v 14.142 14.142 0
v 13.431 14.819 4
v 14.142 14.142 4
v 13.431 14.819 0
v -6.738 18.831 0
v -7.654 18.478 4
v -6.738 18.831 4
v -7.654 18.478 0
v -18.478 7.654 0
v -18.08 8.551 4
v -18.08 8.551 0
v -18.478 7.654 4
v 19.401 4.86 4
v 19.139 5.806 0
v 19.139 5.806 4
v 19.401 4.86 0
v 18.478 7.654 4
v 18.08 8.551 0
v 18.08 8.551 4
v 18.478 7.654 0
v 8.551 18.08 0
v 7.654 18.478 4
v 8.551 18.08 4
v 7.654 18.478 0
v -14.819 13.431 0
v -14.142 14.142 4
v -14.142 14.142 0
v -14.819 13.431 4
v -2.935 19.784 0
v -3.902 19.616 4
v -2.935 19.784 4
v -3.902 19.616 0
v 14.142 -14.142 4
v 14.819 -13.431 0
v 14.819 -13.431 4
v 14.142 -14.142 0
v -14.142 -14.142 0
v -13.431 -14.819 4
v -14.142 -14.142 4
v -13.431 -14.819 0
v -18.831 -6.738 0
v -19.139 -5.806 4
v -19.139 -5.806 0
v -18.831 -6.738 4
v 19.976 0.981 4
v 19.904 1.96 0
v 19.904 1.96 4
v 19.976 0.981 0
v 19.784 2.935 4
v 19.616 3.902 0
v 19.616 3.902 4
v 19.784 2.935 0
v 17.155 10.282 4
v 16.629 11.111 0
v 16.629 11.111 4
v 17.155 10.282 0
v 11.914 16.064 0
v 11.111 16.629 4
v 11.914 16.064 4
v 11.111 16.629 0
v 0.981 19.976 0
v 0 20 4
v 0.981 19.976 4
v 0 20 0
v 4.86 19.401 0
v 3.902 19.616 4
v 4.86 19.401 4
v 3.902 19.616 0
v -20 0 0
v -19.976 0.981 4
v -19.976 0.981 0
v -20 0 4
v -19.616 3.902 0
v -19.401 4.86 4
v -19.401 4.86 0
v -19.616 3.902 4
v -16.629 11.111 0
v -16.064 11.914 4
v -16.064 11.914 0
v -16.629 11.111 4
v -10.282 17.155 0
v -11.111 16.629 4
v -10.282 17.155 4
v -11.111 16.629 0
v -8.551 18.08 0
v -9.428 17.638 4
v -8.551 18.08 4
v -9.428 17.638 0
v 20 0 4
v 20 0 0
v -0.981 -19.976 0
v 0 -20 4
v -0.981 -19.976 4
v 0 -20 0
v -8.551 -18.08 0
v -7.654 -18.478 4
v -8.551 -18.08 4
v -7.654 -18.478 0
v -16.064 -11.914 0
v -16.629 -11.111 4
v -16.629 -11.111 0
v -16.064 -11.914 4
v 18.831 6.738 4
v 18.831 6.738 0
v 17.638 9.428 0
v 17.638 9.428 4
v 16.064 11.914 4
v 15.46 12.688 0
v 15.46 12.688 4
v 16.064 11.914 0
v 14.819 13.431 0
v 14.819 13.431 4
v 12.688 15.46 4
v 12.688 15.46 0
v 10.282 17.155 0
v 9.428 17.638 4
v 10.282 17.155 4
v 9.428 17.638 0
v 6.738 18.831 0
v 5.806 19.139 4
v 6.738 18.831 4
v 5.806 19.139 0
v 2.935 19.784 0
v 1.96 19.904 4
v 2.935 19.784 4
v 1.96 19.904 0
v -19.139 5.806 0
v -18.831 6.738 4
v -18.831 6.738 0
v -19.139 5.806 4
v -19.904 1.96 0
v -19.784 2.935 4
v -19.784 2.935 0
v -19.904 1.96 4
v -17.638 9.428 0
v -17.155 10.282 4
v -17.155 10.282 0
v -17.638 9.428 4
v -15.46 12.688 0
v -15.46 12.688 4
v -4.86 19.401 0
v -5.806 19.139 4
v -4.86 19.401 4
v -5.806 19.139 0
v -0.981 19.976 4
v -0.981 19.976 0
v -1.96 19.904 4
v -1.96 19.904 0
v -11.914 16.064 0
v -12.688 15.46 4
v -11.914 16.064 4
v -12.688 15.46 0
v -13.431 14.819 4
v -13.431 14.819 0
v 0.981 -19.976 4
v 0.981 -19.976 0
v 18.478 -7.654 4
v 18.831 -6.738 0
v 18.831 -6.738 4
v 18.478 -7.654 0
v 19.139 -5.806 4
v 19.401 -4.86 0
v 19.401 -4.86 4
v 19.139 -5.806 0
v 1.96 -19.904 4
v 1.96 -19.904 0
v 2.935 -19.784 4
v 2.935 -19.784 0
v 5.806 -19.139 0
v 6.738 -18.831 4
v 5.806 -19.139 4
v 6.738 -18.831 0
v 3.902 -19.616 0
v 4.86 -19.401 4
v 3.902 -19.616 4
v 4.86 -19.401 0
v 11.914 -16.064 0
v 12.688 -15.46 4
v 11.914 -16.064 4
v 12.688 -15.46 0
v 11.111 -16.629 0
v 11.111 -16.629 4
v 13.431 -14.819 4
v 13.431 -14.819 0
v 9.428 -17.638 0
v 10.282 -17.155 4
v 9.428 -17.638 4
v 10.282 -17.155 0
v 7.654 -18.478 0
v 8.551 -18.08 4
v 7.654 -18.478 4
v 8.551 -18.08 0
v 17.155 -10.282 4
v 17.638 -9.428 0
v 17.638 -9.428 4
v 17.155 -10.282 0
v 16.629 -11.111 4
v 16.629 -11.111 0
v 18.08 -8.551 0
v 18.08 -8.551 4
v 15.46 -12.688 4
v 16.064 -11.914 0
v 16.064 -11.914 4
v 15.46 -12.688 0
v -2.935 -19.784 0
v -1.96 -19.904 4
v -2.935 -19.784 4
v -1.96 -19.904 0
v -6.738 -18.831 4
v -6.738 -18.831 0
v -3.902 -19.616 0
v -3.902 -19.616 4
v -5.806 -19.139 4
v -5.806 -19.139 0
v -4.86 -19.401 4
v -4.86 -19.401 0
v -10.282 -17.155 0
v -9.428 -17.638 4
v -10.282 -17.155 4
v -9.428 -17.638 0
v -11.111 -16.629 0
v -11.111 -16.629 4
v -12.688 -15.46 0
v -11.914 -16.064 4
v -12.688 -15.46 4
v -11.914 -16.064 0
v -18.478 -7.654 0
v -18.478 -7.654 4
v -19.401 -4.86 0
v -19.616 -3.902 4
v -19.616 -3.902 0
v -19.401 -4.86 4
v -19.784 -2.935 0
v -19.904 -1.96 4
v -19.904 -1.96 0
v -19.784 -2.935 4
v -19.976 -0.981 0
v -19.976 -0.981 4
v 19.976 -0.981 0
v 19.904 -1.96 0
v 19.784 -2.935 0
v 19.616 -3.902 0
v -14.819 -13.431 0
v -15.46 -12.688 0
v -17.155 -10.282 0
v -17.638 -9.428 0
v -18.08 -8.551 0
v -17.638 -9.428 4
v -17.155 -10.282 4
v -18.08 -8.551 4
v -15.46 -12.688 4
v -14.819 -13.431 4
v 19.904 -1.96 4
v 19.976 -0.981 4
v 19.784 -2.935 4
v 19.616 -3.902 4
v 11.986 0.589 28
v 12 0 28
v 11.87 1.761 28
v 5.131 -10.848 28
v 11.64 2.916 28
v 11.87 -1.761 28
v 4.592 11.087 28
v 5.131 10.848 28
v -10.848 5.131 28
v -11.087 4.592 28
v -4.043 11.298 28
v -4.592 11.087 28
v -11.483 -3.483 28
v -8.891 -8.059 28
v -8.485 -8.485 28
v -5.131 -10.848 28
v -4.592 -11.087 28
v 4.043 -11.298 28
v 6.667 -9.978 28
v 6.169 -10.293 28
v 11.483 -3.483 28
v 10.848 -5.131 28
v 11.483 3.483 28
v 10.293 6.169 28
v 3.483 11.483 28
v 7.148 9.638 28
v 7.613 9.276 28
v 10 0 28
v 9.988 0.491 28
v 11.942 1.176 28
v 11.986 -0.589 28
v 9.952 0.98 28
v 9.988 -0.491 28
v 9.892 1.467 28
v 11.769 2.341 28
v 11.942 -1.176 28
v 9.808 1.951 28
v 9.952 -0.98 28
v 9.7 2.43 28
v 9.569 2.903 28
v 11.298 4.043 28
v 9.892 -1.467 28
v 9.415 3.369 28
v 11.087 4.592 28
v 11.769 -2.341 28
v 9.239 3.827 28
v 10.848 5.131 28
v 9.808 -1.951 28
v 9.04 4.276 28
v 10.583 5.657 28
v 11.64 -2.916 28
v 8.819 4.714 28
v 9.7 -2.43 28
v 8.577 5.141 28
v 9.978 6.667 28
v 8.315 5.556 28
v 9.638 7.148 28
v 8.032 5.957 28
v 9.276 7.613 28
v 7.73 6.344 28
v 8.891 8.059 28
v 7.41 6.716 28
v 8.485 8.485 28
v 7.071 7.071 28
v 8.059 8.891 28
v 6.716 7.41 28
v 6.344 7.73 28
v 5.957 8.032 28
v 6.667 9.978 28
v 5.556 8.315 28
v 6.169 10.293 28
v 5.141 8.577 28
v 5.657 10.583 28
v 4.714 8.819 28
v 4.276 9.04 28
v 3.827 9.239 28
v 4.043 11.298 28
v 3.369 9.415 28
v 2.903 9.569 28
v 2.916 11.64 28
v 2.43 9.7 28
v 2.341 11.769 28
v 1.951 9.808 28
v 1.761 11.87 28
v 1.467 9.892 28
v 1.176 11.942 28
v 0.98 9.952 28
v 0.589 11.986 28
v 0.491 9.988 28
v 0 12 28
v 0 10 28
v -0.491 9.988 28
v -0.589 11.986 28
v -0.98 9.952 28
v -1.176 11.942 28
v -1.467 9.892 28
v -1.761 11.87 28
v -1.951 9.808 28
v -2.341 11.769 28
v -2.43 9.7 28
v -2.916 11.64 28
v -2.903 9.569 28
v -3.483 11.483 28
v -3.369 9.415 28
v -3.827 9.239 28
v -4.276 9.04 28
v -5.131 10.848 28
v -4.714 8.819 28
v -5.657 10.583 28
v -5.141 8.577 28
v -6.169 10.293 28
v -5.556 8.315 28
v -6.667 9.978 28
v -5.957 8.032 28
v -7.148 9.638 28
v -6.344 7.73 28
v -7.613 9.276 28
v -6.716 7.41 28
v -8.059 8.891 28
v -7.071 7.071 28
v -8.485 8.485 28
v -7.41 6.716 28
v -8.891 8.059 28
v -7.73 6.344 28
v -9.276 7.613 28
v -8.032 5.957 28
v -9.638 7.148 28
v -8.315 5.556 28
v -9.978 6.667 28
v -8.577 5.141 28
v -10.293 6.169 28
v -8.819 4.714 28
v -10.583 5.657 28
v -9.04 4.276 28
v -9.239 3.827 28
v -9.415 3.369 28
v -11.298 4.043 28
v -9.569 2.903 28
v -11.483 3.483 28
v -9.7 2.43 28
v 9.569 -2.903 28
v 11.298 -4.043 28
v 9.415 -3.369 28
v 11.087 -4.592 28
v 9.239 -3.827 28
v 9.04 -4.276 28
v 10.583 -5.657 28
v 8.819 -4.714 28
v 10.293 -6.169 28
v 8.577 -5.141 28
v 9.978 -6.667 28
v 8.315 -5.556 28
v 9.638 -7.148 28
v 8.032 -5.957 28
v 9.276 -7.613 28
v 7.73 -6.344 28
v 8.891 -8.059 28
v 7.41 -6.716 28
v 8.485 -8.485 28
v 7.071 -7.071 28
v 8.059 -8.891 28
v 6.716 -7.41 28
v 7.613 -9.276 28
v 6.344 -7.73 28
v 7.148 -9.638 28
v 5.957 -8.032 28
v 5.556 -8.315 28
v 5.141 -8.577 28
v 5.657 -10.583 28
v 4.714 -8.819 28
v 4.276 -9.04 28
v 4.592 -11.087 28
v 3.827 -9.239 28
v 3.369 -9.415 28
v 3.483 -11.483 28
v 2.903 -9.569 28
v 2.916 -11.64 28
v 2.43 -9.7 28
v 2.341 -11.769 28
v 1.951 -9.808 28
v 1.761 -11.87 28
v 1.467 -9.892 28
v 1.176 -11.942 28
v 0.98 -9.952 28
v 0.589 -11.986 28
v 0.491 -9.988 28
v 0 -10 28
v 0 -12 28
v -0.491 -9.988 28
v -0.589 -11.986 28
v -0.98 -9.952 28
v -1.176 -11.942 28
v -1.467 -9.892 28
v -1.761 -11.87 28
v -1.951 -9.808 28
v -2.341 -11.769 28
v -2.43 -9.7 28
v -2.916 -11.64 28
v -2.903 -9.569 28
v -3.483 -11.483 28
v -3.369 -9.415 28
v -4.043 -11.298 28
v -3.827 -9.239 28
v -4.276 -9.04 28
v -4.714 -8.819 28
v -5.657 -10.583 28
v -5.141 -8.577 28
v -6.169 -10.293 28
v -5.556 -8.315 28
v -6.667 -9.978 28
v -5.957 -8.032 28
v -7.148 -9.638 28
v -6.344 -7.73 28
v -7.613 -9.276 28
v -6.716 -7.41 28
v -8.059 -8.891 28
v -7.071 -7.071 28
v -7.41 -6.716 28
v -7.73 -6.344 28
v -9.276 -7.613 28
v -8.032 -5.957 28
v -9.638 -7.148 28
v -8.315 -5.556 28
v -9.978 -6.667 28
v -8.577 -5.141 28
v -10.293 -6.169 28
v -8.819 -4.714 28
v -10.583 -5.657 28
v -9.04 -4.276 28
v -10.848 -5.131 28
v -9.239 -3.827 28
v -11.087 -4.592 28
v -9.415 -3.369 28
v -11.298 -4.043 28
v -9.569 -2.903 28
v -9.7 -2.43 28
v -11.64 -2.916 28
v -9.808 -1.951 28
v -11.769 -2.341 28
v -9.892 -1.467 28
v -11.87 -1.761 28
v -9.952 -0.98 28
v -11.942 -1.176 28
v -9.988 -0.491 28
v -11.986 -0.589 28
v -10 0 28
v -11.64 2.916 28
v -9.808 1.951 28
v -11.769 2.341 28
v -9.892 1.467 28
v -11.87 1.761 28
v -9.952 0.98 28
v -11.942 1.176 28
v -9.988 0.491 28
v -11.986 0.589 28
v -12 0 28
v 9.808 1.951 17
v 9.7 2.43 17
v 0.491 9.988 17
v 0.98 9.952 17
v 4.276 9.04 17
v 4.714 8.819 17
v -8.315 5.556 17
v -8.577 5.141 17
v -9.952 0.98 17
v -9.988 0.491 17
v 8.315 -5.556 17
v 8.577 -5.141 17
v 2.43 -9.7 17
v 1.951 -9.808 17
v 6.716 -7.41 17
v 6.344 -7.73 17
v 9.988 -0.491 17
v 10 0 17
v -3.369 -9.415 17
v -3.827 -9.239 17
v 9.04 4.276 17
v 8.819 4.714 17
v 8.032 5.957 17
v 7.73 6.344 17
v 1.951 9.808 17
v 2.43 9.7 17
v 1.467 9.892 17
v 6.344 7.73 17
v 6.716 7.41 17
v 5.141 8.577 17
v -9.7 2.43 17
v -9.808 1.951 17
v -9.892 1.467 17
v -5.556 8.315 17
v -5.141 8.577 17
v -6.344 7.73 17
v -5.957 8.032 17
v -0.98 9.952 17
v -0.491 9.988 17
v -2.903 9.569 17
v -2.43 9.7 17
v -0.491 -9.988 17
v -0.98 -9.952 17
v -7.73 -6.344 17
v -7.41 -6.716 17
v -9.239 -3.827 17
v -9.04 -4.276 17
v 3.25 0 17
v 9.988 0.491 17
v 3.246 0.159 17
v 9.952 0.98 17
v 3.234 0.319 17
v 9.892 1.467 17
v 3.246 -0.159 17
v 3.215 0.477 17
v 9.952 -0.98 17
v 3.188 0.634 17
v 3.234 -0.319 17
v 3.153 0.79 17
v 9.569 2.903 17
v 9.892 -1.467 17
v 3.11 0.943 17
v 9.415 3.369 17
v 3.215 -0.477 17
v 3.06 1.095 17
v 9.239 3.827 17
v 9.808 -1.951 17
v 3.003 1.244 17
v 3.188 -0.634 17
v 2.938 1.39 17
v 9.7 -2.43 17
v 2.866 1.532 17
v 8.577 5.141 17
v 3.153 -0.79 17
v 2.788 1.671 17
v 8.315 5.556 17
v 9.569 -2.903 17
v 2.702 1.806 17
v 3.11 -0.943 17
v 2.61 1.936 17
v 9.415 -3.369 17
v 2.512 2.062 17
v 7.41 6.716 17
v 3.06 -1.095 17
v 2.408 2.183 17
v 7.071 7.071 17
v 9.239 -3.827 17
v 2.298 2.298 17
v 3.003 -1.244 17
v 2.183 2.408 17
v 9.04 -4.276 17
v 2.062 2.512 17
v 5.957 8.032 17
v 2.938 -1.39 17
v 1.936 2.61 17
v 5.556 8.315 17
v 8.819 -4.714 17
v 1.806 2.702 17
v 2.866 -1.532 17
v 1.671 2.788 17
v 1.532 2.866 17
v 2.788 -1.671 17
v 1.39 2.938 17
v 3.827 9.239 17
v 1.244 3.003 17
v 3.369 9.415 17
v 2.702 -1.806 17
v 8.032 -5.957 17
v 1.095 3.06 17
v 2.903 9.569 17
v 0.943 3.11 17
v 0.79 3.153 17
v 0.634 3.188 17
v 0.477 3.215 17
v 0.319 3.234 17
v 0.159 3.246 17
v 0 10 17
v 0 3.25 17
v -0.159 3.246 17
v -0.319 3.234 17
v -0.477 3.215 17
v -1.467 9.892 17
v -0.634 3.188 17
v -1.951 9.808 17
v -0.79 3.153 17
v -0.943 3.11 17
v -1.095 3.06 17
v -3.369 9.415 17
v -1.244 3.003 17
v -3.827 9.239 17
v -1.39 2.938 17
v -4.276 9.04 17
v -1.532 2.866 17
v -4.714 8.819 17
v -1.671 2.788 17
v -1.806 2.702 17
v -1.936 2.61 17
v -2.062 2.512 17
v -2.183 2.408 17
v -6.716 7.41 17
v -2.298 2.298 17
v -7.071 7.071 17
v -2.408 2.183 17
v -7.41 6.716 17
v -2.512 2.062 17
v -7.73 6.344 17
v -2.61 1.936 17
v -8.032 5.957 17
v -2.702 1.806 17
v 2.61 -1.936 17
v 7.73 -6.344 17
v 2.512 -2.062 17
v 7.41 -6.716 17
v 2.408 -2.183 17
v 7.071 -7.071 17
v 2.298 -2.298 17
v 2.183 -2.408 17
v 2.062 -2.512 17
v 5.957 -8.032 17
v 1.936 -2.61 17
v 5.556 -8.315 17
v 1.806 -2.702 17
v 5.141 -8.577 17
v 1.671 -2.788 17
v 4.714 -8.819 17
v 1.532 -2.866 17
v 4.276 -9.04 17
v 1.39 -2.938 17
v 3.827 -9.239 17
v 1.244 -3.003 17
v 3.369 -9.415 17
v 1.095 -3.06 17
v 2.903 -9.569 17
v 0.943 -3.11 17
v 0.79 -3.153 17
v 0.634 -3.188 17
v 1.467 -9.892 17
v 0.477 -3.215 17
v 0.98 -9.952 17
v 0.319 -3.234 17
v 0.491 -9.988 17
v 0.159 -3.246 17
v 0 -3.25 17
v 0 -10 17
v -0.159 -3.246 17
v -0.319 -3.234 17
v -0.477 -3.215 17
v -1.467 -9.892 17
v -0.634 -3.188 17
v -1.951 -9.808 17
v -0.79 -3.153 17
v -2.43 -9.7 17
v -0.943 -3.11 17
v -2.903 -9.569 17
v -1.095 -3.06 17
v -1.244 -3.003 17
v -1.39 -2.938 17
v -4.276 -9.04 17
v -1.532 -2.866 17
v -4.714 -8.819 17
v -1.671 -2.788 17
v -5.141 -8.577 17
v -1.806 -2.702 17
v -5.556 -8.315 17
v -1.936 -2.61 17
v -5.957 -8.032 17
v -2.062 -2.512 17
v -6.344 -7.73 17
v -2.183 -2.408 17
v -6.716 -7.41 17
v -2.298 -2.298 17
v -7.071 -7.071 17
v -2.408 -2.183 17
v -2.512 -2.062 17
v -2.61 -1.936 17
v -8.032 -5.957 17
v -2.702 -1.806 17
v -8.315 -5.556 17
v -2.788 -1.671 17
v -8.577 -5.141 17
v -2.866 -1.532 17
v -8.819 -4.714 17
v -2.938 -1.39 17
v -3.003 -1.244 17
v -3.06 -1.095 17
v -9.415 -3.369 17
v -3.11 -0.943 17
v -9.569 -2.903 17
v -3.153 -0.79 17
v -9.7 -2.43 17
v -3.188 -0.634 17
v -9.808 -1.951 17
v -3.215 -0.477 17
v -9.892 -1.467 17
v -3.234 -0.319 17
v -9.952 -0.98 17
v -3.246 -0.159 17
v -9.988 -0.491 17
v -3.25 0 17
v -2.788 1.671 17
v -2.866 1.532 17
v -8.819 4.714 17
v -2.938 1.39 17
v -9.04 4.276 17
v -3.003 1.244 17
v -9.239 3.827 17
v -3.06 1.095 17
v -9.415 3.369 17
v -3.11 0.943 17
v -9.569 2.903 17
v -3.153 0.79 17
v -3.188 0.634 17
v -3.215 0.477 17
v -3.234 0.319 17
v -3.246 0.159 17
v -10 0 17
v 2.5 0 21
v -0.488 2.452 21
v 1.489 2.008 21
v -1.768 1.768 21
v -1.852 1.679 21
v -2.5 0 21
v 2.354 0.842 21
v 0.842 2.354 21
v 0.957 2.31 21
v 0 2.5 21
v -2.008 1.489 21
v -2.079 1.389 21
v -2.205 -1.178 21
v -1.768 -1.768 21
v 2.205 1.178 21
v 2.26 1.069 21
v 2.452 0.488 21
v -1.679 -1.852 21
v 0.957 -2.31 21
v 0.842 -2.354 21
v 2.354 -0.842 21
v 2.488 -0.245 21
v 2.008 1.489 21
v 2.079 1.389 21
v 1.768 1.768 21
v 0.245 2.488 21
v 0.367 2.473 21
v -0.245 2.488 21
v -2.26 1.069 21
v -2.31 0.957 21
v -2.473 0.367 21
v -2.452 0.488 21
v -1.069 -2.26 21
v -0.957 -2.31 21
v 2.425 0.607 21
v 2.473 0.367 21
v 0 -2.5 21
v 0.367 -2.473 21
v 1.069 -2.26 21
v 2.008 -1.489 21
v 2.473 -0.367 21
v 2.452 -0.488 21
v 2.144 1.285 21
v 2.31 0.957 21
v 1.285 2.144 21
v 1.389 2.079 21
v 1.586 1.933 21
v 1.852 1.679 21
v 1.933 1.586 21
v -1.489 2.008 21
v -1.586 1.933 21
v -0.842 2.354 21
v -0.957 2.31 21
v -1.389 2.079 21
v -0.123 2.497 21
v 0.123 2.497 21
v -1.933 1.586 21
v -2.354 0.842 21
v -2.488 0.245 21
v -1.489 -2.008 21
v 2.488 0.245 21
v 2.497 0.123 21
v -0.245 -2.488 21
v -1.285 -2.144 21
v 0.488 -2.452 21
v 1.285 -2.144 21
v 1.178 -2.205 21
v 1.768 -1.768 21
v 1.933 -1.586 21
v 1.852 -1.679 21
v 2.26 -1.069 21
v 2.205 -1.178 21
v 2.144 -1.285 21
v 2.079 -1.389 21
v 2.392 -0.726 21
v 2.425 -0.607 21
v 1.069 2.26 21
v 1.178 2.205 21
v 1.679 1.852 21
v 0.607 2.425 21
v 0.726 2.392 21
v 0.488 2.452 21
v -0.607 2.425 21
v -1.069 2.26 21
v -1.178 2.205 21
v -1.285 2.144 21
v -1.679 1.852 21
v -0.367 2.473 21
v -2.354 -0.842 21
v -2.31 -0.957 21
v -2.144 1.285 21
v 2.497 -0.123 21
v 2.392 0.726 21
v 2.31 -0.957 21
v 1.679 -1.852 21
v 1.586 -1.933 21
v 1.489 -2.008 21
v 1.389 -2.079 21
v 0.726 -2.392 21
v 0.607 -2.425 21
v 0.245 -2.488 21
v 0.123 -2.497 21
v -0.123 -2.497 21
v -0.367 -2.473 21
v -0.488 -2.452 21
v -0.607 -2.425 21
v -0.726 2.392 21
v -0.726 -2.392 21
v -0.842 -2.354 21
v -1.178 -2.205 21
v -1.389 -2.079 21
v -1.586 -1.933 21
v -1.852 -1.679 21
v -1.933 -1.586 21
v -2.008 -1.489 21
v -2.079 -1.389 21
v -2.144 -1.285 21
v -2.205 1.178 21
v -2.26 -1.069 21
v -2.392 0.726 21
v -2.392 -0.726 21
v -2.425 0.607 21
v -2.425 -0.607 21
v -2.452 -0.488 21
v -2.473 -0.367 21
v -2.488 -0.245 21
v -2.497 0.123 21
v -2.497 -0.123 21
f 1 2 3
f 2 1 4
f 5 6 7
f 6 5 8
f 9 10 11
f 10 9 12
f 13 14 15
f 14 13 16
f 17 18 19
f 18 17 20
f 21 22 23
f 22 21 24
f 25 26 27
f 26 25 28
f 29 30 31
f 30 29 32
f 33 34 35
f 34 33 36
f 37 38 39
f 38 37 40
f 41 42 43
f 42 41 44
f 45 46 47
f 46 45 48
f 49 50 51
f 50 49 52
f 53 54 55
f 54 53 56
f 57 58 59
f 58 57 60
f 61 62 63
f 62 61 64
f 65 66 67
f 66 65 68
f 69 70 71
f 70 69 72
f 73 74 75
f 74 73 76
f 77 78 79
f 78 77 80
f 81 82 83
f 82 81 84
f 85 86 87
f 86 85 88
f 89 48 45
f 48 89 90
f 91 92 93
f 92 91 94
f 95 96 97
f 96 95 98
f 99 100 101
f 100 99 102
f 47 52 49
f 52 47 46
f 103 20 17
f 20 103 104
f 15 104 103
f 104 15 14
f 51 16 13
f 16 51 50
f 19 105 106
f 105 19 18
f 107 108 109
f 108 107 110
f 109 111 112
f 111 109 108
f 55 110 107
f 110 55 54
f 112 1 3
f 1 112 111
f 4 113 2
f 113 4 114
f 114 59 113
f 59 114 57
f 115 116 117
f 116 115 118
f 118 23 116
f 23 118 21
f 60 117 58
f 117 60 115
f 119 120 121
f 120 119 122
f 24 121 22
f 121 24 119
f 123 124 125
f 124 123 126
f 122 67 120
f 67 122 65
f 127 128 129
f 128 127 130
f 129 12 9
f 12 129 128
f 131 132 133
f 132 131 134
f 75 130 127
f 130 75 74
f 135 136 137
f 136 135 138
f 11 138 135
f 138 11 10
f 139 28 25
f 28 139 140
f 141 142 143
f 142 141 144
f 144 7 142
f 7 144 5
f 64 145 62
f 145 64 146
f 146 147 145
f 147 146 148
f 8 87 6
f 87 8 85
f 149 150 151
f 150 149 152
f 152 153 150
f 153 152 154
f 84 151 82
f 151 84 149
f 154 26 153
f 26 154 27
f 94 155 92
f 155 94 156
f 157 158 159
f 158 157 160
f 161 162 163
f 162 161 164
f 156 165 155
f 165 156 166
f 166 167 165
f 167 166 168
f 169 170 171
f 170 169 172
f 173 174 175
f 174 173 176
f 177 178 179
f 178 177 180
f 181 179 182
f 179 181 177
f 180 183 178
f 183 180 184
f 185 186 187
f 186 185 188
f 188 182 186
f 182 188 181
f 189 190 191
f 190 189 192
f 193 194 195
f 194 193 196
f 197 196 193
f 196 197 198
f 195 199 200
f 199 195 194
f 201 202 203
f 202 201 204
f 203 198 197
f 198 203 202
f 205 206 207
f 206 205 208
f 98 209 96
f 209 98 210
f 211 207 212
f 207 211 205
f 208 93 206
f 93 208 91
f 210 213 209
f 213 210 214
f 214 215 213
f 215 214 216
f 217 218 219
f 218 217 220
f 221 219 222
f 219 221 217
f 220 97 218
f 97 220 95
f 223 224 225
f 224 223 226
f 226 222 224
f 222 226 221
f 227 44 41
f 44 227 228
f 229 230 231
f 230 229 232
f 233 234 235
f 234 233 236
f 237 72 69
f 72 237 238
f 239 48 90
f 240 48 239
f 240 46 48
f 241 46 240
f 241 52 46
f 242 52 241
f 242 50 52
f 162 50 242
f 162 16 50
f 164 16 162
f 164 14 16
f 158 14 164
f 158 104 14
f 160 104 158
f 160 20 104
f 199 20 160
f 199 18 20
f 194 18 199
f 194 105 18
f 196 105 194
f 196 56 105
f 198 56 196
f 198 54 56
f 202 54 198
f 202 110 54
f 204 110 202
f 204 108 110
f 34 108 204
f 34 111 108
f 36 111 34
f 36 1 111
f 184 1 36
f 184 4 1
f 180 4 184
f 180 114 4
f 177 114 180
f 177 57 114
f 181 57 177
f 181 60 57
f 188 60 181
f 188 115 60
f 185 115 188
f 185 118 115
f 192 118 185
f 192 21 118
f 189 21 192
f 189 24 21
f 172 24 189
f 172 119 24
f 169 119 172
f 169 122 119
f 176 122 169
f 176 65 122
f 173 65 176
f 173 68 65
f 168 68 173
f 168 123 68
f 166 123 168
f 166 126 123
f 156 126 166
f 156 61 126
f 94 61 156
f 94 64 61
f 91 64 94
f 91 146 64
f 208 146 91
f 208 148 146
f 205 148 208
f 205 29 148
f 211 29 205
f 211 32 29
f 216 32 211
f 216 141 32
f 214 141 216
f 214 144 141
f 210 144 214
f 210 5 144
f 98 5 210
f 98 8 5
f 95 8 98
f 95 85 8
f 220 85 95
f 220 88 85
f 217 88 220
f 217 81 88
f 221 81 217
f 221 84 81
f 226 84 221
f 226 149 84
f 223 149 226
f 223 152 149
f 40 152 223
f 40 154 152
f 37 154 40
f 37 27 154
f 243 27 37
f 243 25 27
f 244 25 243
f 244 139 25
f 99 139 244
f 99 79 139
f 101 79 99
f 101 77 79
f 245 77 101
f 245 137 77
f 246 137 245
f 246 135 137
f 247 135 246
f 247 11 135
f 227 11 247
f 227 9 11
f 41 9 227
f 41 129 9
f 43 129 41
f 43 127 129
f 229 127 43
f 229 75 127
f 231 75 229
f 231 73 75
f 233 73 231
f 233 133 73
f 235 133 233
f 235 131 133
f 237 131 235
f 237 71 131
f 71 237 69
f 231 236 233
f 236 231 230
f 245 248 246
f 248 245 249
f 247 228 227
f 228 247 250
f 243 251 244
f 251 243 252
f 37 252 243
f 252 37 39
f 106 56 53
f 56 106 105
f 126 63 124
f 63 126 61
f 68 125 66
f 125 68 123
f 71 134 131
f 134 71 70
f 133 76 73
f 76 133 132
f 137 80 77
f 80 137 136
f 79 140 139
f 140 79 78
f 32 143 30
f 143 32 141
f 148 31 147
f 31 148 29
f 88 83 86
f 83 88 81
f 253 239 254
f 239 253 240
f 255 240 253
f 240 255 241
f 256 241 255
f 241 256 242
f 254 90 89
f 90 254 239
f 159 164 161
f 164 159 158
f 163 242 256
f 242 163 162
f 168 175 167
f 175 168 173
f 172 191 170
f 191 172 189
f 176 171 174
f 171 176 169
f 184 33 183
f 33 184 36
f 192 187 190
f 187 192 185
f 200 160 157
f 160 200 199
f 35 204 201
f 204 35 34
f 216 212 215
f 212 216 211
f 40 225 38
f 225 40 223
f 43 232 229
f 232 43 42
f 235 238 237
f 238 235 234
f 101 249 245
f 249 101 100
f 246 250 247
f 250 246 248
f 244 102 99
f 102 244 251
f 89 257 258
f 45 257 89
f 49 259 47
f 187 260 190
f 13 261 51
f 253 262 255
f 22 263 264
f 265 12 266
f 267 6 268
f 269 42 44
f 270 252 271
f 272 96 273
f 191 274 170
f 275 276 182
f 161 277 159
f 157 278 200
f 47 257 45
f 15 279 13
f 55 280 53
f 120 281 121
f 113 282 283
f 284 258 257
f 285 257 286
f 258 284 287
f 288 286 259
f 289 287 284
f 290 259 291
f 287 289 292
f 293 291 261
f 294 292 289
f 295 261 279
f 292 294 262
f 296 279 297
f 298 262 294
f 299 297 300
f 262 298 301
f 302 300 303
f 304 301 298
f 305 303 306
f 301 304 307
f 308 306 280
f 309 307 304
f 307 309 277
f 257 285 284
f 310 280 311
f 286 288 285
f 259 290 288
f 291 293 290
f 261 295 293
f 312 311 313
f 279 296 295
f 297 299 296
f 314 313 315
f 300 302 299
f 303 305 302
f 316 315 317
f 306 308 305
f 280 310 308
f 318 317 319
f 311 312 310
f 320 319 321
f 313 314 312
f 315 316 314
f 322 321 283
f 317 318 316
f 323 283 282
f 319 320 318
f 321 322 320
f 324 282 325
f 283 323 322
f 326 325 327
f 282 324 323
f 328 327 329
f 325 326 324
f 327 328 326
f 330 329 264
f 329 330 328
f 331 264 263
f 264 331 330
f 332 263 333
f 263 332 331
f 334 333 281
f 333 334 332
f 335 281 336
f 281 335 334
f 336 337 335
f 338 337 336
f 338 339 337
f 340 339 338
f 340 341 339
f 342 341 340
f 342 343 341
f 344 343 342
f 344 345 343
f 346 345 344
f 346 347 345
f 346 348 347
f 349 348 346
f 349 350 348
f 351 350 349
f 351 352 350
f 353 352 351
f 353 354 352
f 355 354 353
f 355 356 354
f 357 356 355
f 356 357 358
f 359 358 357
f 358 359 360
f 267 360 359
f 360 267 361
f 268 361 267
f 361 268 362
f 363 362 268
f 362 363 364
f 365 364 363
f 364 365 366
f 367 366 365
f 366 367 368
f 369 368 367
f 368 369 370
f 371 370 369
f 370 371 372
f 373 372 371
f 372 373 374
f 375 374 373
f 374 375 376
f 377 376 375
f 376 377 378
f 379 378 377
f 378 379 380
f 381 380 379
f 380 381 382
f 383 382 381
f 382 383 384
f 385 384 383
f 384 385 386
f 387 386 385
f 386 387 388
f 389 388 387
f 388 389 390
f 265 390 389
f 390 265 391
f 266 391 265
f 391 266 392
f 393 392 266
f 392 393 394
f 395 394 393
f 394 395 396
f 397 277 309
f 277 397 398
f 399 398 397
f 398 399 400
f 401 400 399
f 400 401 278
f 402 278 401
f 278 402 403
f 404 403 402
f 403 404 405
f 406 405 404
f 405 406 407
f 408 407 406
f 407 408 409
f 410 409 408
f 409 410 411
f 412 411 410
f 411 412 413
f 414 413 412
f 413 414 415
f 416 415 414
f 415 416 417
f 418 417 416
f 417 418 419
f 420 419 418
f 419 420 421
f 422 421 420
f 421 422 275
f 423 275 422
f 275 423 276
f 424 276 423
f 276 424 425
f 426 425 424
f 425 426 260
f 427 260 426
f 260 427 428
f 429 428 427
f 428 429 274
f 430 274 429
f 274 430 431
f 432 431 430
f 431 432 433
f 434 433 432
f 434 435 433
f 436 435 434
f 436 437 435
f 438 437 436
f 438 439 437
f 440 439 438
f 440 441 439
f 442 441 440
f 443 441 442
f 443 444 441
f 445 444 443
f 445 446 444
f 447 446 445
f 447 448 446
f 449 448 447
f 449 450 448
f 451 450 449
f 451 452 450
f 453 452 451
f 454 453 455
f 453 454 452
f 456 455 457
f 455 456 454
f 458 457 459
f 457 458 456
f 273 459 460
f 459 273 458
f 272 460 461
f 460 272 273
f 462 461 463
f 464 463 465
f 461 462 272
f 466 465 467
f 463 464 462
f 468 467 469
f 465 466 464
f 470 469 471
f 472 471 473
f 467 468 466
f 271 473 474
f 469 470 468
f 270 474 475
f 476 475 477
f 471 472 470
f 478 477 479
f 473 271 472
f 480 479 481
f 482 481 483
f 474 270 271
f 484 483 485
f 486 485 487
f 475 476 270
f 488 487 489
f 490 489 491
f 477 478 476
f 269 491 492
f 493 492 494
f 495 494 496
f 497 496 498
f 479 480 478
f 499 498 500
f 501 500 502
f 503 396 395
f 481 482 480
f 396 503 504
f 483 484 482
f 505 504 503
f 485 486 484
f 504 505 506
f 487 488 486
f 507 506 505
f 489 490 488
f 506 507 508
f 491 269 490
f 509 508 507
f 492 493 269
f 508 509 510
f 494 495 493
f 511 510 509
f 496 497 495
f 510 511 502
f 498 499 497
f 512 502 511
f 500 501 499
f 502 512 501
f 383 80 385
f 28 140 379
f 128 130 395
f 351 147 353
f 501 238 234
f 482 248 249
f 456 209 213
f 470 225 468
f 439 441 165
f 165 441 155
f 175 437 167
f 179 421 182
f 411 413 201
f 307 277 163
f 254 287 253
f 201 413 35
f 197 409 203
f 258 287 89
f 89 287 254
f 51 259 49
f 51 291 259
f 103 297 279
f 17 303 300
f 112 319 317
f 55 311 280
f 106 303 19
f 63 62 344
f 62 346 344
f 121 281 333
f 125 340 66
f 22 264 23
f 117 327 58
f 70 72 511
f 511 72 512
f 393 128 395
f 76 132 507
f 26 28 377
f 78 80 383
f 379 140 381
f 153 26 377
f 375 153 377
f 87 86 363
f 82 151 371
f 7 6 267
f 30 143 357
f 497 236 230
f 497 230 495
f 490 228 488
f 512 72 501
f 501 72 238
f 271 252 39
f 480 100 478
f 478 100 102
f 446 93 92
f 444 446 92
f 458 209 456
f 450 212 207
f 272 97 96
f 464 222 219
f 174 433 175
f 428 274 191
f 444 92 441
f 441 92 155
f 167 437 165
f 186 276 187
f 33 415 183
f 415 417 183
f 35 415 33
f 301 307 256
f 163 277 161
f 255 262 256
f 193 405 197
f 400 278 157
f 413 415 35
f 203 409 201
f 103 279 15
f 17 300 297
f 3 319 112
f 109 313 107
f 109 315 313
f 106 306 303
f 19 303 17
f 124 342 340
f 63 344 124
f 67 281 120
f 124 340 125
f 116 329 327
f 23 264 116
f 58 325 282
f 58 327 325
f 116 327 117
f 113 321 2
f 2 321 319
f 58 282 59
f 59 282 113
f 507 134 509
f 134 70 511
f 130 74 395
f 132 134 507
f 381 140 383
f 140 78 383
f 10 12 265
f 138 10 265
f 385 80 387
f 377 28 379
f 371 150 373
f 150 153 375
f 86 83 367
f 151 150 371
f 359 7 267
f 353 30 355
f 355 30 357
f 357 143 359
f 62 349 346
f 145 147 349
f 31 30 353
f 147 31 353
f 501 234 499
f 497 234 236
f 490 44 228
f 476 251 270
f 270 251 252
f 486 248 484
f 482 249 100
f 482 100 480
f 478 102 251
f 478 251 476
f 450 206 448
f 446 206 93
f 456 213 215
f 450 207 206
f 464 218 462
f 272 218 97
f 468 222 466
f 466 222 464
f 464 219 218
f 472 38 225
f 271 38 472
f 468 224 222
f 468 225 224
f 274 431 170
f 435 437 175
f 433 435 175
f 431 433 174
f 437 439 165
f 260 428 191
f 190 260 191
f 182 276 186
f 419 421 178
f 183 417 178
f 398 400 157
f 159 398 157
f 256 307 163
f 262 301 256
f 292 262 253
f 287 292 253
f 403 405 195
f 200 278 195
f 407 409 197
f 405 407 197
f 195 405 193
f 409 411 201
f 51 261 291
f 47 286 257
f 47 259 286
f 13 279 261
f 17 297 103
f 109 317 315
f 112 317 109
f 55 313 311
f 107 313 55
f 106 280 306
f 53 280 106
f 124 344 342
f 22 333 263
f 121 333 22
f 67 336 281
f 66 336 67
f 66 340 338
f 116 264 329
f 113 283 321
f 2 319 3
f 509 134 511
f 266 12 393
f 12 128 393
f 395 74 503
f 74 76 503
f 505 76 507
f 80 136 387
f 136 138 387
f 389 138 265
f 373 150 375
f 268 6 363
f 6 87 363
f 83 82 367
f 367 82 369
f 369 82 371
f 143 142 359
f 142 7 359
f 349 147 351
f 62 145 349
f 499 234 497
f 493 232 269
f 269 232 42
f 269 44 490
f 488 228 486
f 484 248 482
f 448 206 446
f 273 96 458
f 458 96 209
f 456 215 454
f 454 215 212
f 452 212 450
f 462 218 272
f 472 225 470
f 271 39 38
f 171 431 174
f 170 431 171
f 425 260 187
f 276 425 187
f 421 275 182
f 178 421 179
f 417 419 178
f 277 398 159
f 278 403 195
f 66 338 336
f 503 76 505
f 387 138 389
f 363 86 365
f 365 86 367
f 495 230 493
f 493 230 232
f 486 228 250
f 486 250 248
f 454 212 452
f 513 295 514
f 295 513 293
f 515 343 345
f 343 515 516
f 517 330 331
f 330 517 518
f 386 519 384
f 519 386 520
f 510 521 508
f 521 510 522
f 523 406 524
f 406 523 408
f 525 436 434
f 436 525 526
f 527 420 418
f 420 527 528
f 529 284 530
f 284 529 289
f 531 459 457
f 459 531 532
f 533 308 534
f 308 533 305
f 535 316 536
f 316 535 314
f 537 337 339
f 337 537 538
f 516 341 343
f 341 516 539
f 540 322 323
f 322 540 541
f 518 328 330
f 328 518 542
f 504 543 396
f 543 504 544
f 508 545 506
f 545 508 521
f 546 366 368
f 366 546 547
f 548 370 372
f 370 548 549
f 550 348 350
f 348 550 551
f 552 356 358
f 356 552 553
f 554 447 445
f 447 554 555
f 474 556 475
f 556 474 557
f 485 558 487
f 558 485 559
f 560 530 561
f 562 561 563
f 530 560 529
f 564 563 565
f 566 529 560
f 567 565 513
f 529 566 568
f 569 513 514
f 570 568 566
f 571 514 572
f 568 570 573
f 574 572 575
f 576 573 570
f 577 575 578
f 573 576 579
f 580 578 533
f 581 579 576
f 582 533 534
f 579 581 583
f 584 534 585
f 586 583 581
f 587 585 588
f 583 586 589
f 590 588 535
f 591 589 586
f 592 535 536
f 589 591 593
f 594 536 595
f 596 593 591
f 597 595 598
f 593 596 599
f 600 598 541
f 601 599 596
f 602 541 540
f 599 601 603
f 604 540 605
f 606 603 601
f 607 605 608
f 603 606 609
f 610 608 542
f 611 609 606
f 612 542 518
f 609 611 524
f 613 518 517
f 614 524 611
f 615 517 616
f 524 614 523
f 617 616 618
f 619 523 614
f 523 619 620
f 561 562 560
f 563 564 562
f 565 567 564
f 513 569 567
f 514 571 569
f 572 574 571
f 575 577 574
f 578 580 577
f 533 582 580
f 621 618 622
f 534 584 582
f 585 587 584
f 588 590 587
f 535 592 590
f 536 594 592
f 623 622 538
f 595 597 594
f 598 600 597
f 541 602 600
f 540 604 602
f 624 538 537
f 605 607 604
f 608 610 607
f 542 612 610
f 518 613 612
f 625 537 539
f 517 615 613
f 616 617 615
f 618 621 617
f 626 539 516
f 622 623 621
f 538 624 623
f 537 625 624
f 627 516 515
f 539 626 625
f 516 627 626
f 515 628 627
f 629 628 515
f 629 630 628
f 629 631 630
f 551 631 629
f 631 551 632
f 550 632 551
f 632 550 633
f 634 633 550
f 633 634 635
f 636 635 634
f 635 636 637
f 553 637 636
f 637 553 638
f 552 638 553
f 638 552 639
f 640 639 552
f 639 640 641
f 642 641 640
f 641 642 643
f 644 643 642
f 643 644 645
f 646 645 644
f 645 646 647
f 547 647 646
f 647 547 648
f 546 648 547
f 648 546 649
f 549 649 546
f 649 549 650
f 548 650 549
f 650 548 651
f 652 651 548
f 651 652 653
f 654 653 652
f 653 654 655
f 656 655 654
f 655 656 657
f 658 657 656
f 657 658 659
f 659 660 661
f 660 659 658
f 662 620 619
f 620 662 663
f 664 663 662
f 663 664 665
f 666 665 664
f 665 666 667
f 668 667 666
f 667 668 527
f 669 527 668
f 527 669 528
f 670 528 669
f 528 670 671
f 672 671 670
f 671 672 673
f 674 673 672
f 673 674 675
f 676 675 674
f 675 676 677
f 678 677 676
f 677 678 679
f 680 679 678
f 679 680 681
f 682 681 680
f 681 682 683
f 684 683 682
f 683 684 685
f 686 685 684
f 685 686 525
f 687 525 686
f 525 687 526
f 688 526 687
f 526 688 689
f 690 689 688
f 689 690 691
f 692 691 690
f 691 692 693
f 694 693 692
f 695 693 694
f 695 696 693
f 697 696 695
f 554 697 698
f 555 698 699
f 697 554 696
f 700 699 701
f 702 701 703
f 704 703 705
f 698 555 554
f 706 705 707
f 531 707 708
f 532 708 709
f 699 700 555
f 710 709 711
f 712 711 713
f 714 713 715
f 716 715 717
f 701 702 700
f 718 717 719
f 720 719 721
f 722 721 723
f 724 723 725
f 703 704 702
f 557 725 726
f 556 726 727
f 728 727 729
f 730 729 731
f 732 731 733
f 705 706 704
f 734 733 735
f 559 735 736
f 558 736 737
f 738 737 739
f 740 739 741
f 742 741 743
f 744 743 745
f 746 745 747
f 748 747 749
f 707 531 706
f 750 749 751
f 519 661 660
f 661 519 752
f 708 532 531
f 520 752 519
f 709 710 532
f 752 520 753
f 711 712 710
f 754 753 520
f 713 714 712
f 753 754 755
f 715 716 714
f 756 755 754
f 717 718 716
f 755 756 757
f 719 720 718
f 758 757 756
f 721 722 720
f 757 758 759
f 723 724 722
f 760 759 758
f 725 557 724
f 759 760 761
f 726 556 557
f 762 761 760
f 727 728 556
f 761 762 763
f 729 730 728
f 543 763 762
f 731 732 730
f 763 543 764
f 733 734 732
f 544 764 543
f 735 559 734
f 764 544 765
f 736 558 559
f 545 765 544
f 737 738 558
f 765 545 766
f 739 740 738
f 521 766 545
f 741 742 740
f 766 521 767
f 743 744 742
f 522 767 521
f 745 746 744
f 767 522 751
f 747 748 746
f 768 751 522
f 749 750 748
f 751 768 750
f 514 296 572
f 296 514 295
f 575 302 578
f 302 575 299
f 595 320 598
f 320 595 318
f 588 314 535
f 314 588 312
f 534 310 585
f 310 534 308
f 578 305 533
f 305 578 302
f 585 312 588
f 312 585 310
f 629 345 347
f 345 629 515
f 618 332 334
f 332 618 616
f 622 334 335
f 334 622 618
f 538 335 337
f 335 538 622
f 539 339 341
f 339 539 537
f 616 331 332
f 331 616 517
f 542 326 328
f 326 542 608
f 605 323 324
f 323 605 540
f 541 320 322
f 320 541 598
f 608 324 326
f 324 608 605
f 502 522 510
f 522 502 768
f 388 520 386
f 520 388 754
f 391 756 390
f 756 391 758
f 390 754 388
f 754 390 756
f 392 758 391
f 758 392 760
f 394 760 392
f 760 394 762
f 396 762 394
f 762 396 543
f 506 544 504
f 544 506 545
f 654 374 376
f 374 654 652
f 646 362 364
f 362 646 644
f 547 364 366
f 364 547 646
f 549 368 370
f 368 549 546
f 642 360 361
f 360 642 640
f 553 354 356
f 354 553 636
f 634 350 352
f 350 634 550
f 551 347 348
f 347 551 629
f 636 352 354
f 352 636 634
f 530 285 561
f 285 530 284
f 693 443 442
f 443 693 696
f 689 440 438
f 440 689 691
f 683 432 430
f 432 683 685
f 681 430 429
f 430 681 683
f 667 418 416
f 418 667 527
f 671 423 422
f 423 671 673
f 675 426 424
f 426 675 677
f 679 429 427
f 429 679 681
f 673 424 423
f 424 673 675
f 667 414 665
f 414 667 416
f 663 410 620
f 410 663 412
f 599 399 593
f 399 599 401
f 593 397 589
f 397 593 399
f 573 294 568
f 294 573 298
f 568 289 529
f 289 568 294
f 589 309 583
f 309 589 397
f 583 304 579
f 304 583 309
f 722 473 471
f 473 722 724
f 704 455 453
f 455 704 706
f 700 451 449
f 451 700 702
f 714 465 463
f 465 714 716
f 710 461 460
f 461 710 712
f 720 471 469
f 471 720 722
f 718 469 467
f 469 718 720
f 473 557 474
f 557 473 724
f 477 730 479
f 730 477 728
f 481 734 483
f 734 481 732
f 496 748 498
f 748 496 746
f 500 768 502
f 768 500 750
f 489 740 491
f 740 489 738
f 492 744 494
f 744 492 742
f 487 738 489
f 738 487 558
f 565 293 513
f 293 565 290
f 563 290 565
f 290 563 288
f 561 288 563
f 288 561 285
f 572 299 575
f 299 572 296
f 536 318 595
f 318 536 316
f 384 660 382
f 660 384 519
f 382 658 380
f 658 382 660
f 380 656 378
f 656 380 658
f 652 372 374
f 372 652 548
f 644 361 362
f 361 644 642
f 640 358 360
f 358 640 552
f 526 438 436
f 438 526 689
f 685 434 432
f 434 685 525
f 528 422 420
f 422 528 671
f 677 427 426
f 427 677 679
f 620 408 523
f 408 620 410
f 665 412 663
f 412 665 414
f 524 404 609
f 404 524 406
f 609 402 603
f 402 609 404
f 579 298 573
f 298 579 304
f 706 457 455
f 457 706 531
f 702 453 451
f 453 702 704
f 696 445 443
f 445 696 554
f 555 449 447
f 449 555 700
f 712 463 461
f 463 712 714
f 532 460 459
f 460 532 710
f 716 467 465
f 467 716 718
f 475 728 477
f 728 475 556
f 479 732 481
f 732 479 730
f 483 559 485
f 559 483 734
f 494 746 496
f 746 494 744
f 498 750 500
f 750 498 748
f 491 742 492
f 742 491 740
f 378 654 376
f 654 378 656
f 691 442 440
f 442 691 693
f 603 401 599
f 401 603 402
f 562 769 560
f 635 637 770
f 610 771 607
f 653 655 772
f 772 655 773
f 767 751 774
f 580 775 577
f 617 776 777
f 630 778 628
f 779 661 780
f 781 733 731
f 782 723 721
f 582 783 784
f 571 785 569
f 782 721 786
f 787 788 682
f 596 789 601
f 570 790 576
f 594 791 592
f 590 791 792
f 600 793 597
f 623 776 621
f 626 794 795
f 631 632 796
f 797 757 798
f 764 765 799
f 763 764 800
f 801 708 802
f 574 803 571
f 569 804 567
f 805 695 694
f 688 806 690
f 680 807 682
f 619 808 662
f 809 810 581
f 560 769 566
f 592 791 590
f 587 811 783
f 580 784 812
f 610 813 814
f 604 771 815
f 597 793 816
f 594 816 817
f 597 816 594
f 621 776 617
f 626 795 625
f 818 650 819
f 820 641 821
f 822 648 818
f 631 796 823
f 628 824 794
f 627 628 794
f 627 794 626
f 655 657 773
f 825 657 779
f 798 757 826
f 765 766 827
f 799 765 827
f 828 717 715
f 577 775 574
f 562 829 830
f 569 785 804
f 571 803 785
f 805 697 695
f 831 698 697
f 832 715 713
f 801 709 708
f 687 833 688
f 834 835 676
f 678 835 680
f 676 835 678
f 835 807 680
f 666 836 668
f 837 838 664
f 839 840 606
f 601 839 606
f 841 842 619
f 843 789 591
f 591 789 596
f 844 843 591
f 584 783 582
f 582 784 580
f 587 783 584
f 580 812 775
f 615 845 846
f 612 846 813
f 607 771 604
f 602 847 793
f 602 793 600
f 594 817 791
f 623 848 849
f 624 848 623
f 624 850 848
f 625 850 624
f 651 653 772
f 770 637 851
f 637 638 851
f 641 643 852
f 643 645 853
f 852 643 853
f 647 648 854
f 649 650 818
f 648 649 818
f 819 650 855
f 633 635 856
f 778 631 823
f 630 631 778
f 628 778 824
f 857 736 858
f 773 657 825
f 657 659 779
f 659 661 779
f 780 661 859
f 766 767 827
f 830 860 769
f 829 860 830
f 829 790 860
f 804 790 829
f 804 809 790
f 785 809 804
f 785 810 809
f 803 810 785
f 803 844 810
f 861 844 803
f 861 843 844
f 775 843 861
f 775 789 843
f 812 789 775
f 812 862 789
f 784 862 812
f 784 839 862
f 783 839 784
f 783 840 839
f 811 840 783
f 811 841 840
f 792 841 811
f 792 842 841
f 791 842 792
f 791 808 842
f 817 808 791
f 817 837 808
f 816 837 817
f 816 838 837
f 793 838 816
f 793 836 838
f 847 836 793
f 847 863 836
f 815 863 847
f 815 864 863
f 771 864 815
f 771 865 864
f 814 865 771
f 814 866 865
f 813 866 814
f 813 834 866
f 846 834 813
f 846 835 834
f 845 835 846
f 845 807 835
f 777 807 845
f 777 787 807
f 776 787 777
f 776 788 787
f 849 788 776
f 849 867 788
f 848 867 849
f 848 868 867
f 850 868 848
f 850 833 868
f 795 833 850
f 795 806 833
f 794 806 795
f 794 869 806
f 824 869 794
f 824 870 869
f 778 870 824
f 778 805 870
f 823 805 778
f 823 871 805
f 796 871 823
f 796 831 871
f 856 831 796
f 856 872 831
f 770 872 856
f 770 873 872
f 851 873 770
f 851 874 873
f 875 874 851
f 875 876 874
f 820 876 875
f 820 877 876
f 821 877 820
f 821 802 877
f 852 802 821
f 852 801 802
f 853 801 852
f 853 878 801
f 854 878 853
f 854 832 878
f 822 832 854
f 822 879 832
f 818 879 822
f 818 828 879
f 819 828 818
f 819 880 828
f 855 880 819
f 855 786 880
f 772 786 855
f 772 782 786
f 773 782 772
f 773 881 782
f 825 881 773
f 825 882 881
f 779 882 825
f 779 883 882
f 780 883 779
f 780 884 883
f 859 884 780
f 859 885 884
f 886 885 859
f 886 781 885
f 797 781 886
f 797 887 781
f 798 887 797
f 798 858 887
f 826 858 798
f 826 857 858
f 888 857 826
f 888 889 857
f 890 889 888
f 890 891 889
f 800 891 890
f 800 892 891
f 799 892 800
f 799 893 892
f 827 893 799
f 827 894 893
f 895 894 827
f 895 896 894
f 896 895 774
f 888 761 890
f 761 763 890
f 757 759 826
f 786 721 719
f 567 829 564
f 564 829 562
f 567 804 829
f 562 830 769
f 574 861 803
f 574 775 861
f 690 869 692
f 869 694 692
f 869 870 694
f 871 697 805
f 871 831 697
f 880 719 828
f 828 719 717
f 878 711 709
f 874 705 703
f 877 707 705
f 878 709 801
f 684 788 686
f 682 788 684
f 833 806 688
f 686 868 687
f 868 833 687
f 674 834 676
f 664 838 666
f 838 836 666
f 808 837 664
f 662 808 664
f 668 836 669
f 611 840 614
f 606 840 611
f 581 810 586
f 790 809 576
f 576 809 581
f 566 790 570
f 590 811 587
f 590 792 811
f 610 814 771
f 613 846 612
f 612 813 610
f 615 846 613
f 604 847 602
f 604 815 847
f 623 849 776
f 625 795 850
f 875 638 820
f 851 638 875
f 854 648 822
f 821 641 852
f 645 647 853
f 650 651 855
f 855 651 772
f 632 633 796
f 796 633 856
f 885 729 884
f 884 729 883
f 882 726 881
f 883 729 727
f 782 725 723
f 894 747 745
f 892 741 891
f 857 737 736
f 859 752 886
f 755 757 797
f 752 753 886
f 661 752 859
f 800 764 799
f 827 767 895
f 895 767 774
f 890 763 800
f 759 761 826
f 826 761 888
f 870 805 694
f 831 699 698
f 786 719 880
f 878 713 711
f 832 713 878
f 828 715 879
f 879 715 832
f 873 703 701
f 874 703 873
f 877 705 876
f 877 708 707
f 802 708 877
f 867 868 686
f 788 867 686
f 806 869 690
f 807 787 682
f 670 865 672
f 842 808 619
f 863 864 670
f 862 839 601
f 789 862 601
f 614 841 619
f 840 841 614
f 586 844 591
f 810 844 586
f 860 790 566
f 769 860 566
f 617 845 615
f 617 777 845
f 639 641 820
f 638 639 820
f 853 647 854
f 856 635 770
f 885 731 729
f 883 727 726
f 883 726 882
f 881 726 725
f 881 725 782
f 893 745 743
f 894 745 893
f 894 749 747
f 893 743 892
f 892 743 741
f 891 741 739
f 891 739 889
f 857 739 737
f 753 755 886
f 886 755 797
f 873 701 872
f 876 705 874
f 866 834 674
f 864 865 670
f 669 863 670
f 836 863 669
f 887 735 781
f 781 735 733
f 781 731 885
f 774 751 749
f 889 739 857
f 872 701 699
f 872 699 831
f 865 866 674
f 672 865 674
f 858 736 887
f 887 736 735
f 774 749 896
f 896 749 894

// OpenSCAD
$fn=128;
difference(){
    union(){
        cylinder(d=40,h=4);
        translate([0,0,4]) cylinder(d1=40,d2=24,h=24);
     }
    translate([0,0,17]) cylinder(d=20,h=12);
}
translate([0,0,17]) cylinder(d1=6.5,d2=5,h=4); 
